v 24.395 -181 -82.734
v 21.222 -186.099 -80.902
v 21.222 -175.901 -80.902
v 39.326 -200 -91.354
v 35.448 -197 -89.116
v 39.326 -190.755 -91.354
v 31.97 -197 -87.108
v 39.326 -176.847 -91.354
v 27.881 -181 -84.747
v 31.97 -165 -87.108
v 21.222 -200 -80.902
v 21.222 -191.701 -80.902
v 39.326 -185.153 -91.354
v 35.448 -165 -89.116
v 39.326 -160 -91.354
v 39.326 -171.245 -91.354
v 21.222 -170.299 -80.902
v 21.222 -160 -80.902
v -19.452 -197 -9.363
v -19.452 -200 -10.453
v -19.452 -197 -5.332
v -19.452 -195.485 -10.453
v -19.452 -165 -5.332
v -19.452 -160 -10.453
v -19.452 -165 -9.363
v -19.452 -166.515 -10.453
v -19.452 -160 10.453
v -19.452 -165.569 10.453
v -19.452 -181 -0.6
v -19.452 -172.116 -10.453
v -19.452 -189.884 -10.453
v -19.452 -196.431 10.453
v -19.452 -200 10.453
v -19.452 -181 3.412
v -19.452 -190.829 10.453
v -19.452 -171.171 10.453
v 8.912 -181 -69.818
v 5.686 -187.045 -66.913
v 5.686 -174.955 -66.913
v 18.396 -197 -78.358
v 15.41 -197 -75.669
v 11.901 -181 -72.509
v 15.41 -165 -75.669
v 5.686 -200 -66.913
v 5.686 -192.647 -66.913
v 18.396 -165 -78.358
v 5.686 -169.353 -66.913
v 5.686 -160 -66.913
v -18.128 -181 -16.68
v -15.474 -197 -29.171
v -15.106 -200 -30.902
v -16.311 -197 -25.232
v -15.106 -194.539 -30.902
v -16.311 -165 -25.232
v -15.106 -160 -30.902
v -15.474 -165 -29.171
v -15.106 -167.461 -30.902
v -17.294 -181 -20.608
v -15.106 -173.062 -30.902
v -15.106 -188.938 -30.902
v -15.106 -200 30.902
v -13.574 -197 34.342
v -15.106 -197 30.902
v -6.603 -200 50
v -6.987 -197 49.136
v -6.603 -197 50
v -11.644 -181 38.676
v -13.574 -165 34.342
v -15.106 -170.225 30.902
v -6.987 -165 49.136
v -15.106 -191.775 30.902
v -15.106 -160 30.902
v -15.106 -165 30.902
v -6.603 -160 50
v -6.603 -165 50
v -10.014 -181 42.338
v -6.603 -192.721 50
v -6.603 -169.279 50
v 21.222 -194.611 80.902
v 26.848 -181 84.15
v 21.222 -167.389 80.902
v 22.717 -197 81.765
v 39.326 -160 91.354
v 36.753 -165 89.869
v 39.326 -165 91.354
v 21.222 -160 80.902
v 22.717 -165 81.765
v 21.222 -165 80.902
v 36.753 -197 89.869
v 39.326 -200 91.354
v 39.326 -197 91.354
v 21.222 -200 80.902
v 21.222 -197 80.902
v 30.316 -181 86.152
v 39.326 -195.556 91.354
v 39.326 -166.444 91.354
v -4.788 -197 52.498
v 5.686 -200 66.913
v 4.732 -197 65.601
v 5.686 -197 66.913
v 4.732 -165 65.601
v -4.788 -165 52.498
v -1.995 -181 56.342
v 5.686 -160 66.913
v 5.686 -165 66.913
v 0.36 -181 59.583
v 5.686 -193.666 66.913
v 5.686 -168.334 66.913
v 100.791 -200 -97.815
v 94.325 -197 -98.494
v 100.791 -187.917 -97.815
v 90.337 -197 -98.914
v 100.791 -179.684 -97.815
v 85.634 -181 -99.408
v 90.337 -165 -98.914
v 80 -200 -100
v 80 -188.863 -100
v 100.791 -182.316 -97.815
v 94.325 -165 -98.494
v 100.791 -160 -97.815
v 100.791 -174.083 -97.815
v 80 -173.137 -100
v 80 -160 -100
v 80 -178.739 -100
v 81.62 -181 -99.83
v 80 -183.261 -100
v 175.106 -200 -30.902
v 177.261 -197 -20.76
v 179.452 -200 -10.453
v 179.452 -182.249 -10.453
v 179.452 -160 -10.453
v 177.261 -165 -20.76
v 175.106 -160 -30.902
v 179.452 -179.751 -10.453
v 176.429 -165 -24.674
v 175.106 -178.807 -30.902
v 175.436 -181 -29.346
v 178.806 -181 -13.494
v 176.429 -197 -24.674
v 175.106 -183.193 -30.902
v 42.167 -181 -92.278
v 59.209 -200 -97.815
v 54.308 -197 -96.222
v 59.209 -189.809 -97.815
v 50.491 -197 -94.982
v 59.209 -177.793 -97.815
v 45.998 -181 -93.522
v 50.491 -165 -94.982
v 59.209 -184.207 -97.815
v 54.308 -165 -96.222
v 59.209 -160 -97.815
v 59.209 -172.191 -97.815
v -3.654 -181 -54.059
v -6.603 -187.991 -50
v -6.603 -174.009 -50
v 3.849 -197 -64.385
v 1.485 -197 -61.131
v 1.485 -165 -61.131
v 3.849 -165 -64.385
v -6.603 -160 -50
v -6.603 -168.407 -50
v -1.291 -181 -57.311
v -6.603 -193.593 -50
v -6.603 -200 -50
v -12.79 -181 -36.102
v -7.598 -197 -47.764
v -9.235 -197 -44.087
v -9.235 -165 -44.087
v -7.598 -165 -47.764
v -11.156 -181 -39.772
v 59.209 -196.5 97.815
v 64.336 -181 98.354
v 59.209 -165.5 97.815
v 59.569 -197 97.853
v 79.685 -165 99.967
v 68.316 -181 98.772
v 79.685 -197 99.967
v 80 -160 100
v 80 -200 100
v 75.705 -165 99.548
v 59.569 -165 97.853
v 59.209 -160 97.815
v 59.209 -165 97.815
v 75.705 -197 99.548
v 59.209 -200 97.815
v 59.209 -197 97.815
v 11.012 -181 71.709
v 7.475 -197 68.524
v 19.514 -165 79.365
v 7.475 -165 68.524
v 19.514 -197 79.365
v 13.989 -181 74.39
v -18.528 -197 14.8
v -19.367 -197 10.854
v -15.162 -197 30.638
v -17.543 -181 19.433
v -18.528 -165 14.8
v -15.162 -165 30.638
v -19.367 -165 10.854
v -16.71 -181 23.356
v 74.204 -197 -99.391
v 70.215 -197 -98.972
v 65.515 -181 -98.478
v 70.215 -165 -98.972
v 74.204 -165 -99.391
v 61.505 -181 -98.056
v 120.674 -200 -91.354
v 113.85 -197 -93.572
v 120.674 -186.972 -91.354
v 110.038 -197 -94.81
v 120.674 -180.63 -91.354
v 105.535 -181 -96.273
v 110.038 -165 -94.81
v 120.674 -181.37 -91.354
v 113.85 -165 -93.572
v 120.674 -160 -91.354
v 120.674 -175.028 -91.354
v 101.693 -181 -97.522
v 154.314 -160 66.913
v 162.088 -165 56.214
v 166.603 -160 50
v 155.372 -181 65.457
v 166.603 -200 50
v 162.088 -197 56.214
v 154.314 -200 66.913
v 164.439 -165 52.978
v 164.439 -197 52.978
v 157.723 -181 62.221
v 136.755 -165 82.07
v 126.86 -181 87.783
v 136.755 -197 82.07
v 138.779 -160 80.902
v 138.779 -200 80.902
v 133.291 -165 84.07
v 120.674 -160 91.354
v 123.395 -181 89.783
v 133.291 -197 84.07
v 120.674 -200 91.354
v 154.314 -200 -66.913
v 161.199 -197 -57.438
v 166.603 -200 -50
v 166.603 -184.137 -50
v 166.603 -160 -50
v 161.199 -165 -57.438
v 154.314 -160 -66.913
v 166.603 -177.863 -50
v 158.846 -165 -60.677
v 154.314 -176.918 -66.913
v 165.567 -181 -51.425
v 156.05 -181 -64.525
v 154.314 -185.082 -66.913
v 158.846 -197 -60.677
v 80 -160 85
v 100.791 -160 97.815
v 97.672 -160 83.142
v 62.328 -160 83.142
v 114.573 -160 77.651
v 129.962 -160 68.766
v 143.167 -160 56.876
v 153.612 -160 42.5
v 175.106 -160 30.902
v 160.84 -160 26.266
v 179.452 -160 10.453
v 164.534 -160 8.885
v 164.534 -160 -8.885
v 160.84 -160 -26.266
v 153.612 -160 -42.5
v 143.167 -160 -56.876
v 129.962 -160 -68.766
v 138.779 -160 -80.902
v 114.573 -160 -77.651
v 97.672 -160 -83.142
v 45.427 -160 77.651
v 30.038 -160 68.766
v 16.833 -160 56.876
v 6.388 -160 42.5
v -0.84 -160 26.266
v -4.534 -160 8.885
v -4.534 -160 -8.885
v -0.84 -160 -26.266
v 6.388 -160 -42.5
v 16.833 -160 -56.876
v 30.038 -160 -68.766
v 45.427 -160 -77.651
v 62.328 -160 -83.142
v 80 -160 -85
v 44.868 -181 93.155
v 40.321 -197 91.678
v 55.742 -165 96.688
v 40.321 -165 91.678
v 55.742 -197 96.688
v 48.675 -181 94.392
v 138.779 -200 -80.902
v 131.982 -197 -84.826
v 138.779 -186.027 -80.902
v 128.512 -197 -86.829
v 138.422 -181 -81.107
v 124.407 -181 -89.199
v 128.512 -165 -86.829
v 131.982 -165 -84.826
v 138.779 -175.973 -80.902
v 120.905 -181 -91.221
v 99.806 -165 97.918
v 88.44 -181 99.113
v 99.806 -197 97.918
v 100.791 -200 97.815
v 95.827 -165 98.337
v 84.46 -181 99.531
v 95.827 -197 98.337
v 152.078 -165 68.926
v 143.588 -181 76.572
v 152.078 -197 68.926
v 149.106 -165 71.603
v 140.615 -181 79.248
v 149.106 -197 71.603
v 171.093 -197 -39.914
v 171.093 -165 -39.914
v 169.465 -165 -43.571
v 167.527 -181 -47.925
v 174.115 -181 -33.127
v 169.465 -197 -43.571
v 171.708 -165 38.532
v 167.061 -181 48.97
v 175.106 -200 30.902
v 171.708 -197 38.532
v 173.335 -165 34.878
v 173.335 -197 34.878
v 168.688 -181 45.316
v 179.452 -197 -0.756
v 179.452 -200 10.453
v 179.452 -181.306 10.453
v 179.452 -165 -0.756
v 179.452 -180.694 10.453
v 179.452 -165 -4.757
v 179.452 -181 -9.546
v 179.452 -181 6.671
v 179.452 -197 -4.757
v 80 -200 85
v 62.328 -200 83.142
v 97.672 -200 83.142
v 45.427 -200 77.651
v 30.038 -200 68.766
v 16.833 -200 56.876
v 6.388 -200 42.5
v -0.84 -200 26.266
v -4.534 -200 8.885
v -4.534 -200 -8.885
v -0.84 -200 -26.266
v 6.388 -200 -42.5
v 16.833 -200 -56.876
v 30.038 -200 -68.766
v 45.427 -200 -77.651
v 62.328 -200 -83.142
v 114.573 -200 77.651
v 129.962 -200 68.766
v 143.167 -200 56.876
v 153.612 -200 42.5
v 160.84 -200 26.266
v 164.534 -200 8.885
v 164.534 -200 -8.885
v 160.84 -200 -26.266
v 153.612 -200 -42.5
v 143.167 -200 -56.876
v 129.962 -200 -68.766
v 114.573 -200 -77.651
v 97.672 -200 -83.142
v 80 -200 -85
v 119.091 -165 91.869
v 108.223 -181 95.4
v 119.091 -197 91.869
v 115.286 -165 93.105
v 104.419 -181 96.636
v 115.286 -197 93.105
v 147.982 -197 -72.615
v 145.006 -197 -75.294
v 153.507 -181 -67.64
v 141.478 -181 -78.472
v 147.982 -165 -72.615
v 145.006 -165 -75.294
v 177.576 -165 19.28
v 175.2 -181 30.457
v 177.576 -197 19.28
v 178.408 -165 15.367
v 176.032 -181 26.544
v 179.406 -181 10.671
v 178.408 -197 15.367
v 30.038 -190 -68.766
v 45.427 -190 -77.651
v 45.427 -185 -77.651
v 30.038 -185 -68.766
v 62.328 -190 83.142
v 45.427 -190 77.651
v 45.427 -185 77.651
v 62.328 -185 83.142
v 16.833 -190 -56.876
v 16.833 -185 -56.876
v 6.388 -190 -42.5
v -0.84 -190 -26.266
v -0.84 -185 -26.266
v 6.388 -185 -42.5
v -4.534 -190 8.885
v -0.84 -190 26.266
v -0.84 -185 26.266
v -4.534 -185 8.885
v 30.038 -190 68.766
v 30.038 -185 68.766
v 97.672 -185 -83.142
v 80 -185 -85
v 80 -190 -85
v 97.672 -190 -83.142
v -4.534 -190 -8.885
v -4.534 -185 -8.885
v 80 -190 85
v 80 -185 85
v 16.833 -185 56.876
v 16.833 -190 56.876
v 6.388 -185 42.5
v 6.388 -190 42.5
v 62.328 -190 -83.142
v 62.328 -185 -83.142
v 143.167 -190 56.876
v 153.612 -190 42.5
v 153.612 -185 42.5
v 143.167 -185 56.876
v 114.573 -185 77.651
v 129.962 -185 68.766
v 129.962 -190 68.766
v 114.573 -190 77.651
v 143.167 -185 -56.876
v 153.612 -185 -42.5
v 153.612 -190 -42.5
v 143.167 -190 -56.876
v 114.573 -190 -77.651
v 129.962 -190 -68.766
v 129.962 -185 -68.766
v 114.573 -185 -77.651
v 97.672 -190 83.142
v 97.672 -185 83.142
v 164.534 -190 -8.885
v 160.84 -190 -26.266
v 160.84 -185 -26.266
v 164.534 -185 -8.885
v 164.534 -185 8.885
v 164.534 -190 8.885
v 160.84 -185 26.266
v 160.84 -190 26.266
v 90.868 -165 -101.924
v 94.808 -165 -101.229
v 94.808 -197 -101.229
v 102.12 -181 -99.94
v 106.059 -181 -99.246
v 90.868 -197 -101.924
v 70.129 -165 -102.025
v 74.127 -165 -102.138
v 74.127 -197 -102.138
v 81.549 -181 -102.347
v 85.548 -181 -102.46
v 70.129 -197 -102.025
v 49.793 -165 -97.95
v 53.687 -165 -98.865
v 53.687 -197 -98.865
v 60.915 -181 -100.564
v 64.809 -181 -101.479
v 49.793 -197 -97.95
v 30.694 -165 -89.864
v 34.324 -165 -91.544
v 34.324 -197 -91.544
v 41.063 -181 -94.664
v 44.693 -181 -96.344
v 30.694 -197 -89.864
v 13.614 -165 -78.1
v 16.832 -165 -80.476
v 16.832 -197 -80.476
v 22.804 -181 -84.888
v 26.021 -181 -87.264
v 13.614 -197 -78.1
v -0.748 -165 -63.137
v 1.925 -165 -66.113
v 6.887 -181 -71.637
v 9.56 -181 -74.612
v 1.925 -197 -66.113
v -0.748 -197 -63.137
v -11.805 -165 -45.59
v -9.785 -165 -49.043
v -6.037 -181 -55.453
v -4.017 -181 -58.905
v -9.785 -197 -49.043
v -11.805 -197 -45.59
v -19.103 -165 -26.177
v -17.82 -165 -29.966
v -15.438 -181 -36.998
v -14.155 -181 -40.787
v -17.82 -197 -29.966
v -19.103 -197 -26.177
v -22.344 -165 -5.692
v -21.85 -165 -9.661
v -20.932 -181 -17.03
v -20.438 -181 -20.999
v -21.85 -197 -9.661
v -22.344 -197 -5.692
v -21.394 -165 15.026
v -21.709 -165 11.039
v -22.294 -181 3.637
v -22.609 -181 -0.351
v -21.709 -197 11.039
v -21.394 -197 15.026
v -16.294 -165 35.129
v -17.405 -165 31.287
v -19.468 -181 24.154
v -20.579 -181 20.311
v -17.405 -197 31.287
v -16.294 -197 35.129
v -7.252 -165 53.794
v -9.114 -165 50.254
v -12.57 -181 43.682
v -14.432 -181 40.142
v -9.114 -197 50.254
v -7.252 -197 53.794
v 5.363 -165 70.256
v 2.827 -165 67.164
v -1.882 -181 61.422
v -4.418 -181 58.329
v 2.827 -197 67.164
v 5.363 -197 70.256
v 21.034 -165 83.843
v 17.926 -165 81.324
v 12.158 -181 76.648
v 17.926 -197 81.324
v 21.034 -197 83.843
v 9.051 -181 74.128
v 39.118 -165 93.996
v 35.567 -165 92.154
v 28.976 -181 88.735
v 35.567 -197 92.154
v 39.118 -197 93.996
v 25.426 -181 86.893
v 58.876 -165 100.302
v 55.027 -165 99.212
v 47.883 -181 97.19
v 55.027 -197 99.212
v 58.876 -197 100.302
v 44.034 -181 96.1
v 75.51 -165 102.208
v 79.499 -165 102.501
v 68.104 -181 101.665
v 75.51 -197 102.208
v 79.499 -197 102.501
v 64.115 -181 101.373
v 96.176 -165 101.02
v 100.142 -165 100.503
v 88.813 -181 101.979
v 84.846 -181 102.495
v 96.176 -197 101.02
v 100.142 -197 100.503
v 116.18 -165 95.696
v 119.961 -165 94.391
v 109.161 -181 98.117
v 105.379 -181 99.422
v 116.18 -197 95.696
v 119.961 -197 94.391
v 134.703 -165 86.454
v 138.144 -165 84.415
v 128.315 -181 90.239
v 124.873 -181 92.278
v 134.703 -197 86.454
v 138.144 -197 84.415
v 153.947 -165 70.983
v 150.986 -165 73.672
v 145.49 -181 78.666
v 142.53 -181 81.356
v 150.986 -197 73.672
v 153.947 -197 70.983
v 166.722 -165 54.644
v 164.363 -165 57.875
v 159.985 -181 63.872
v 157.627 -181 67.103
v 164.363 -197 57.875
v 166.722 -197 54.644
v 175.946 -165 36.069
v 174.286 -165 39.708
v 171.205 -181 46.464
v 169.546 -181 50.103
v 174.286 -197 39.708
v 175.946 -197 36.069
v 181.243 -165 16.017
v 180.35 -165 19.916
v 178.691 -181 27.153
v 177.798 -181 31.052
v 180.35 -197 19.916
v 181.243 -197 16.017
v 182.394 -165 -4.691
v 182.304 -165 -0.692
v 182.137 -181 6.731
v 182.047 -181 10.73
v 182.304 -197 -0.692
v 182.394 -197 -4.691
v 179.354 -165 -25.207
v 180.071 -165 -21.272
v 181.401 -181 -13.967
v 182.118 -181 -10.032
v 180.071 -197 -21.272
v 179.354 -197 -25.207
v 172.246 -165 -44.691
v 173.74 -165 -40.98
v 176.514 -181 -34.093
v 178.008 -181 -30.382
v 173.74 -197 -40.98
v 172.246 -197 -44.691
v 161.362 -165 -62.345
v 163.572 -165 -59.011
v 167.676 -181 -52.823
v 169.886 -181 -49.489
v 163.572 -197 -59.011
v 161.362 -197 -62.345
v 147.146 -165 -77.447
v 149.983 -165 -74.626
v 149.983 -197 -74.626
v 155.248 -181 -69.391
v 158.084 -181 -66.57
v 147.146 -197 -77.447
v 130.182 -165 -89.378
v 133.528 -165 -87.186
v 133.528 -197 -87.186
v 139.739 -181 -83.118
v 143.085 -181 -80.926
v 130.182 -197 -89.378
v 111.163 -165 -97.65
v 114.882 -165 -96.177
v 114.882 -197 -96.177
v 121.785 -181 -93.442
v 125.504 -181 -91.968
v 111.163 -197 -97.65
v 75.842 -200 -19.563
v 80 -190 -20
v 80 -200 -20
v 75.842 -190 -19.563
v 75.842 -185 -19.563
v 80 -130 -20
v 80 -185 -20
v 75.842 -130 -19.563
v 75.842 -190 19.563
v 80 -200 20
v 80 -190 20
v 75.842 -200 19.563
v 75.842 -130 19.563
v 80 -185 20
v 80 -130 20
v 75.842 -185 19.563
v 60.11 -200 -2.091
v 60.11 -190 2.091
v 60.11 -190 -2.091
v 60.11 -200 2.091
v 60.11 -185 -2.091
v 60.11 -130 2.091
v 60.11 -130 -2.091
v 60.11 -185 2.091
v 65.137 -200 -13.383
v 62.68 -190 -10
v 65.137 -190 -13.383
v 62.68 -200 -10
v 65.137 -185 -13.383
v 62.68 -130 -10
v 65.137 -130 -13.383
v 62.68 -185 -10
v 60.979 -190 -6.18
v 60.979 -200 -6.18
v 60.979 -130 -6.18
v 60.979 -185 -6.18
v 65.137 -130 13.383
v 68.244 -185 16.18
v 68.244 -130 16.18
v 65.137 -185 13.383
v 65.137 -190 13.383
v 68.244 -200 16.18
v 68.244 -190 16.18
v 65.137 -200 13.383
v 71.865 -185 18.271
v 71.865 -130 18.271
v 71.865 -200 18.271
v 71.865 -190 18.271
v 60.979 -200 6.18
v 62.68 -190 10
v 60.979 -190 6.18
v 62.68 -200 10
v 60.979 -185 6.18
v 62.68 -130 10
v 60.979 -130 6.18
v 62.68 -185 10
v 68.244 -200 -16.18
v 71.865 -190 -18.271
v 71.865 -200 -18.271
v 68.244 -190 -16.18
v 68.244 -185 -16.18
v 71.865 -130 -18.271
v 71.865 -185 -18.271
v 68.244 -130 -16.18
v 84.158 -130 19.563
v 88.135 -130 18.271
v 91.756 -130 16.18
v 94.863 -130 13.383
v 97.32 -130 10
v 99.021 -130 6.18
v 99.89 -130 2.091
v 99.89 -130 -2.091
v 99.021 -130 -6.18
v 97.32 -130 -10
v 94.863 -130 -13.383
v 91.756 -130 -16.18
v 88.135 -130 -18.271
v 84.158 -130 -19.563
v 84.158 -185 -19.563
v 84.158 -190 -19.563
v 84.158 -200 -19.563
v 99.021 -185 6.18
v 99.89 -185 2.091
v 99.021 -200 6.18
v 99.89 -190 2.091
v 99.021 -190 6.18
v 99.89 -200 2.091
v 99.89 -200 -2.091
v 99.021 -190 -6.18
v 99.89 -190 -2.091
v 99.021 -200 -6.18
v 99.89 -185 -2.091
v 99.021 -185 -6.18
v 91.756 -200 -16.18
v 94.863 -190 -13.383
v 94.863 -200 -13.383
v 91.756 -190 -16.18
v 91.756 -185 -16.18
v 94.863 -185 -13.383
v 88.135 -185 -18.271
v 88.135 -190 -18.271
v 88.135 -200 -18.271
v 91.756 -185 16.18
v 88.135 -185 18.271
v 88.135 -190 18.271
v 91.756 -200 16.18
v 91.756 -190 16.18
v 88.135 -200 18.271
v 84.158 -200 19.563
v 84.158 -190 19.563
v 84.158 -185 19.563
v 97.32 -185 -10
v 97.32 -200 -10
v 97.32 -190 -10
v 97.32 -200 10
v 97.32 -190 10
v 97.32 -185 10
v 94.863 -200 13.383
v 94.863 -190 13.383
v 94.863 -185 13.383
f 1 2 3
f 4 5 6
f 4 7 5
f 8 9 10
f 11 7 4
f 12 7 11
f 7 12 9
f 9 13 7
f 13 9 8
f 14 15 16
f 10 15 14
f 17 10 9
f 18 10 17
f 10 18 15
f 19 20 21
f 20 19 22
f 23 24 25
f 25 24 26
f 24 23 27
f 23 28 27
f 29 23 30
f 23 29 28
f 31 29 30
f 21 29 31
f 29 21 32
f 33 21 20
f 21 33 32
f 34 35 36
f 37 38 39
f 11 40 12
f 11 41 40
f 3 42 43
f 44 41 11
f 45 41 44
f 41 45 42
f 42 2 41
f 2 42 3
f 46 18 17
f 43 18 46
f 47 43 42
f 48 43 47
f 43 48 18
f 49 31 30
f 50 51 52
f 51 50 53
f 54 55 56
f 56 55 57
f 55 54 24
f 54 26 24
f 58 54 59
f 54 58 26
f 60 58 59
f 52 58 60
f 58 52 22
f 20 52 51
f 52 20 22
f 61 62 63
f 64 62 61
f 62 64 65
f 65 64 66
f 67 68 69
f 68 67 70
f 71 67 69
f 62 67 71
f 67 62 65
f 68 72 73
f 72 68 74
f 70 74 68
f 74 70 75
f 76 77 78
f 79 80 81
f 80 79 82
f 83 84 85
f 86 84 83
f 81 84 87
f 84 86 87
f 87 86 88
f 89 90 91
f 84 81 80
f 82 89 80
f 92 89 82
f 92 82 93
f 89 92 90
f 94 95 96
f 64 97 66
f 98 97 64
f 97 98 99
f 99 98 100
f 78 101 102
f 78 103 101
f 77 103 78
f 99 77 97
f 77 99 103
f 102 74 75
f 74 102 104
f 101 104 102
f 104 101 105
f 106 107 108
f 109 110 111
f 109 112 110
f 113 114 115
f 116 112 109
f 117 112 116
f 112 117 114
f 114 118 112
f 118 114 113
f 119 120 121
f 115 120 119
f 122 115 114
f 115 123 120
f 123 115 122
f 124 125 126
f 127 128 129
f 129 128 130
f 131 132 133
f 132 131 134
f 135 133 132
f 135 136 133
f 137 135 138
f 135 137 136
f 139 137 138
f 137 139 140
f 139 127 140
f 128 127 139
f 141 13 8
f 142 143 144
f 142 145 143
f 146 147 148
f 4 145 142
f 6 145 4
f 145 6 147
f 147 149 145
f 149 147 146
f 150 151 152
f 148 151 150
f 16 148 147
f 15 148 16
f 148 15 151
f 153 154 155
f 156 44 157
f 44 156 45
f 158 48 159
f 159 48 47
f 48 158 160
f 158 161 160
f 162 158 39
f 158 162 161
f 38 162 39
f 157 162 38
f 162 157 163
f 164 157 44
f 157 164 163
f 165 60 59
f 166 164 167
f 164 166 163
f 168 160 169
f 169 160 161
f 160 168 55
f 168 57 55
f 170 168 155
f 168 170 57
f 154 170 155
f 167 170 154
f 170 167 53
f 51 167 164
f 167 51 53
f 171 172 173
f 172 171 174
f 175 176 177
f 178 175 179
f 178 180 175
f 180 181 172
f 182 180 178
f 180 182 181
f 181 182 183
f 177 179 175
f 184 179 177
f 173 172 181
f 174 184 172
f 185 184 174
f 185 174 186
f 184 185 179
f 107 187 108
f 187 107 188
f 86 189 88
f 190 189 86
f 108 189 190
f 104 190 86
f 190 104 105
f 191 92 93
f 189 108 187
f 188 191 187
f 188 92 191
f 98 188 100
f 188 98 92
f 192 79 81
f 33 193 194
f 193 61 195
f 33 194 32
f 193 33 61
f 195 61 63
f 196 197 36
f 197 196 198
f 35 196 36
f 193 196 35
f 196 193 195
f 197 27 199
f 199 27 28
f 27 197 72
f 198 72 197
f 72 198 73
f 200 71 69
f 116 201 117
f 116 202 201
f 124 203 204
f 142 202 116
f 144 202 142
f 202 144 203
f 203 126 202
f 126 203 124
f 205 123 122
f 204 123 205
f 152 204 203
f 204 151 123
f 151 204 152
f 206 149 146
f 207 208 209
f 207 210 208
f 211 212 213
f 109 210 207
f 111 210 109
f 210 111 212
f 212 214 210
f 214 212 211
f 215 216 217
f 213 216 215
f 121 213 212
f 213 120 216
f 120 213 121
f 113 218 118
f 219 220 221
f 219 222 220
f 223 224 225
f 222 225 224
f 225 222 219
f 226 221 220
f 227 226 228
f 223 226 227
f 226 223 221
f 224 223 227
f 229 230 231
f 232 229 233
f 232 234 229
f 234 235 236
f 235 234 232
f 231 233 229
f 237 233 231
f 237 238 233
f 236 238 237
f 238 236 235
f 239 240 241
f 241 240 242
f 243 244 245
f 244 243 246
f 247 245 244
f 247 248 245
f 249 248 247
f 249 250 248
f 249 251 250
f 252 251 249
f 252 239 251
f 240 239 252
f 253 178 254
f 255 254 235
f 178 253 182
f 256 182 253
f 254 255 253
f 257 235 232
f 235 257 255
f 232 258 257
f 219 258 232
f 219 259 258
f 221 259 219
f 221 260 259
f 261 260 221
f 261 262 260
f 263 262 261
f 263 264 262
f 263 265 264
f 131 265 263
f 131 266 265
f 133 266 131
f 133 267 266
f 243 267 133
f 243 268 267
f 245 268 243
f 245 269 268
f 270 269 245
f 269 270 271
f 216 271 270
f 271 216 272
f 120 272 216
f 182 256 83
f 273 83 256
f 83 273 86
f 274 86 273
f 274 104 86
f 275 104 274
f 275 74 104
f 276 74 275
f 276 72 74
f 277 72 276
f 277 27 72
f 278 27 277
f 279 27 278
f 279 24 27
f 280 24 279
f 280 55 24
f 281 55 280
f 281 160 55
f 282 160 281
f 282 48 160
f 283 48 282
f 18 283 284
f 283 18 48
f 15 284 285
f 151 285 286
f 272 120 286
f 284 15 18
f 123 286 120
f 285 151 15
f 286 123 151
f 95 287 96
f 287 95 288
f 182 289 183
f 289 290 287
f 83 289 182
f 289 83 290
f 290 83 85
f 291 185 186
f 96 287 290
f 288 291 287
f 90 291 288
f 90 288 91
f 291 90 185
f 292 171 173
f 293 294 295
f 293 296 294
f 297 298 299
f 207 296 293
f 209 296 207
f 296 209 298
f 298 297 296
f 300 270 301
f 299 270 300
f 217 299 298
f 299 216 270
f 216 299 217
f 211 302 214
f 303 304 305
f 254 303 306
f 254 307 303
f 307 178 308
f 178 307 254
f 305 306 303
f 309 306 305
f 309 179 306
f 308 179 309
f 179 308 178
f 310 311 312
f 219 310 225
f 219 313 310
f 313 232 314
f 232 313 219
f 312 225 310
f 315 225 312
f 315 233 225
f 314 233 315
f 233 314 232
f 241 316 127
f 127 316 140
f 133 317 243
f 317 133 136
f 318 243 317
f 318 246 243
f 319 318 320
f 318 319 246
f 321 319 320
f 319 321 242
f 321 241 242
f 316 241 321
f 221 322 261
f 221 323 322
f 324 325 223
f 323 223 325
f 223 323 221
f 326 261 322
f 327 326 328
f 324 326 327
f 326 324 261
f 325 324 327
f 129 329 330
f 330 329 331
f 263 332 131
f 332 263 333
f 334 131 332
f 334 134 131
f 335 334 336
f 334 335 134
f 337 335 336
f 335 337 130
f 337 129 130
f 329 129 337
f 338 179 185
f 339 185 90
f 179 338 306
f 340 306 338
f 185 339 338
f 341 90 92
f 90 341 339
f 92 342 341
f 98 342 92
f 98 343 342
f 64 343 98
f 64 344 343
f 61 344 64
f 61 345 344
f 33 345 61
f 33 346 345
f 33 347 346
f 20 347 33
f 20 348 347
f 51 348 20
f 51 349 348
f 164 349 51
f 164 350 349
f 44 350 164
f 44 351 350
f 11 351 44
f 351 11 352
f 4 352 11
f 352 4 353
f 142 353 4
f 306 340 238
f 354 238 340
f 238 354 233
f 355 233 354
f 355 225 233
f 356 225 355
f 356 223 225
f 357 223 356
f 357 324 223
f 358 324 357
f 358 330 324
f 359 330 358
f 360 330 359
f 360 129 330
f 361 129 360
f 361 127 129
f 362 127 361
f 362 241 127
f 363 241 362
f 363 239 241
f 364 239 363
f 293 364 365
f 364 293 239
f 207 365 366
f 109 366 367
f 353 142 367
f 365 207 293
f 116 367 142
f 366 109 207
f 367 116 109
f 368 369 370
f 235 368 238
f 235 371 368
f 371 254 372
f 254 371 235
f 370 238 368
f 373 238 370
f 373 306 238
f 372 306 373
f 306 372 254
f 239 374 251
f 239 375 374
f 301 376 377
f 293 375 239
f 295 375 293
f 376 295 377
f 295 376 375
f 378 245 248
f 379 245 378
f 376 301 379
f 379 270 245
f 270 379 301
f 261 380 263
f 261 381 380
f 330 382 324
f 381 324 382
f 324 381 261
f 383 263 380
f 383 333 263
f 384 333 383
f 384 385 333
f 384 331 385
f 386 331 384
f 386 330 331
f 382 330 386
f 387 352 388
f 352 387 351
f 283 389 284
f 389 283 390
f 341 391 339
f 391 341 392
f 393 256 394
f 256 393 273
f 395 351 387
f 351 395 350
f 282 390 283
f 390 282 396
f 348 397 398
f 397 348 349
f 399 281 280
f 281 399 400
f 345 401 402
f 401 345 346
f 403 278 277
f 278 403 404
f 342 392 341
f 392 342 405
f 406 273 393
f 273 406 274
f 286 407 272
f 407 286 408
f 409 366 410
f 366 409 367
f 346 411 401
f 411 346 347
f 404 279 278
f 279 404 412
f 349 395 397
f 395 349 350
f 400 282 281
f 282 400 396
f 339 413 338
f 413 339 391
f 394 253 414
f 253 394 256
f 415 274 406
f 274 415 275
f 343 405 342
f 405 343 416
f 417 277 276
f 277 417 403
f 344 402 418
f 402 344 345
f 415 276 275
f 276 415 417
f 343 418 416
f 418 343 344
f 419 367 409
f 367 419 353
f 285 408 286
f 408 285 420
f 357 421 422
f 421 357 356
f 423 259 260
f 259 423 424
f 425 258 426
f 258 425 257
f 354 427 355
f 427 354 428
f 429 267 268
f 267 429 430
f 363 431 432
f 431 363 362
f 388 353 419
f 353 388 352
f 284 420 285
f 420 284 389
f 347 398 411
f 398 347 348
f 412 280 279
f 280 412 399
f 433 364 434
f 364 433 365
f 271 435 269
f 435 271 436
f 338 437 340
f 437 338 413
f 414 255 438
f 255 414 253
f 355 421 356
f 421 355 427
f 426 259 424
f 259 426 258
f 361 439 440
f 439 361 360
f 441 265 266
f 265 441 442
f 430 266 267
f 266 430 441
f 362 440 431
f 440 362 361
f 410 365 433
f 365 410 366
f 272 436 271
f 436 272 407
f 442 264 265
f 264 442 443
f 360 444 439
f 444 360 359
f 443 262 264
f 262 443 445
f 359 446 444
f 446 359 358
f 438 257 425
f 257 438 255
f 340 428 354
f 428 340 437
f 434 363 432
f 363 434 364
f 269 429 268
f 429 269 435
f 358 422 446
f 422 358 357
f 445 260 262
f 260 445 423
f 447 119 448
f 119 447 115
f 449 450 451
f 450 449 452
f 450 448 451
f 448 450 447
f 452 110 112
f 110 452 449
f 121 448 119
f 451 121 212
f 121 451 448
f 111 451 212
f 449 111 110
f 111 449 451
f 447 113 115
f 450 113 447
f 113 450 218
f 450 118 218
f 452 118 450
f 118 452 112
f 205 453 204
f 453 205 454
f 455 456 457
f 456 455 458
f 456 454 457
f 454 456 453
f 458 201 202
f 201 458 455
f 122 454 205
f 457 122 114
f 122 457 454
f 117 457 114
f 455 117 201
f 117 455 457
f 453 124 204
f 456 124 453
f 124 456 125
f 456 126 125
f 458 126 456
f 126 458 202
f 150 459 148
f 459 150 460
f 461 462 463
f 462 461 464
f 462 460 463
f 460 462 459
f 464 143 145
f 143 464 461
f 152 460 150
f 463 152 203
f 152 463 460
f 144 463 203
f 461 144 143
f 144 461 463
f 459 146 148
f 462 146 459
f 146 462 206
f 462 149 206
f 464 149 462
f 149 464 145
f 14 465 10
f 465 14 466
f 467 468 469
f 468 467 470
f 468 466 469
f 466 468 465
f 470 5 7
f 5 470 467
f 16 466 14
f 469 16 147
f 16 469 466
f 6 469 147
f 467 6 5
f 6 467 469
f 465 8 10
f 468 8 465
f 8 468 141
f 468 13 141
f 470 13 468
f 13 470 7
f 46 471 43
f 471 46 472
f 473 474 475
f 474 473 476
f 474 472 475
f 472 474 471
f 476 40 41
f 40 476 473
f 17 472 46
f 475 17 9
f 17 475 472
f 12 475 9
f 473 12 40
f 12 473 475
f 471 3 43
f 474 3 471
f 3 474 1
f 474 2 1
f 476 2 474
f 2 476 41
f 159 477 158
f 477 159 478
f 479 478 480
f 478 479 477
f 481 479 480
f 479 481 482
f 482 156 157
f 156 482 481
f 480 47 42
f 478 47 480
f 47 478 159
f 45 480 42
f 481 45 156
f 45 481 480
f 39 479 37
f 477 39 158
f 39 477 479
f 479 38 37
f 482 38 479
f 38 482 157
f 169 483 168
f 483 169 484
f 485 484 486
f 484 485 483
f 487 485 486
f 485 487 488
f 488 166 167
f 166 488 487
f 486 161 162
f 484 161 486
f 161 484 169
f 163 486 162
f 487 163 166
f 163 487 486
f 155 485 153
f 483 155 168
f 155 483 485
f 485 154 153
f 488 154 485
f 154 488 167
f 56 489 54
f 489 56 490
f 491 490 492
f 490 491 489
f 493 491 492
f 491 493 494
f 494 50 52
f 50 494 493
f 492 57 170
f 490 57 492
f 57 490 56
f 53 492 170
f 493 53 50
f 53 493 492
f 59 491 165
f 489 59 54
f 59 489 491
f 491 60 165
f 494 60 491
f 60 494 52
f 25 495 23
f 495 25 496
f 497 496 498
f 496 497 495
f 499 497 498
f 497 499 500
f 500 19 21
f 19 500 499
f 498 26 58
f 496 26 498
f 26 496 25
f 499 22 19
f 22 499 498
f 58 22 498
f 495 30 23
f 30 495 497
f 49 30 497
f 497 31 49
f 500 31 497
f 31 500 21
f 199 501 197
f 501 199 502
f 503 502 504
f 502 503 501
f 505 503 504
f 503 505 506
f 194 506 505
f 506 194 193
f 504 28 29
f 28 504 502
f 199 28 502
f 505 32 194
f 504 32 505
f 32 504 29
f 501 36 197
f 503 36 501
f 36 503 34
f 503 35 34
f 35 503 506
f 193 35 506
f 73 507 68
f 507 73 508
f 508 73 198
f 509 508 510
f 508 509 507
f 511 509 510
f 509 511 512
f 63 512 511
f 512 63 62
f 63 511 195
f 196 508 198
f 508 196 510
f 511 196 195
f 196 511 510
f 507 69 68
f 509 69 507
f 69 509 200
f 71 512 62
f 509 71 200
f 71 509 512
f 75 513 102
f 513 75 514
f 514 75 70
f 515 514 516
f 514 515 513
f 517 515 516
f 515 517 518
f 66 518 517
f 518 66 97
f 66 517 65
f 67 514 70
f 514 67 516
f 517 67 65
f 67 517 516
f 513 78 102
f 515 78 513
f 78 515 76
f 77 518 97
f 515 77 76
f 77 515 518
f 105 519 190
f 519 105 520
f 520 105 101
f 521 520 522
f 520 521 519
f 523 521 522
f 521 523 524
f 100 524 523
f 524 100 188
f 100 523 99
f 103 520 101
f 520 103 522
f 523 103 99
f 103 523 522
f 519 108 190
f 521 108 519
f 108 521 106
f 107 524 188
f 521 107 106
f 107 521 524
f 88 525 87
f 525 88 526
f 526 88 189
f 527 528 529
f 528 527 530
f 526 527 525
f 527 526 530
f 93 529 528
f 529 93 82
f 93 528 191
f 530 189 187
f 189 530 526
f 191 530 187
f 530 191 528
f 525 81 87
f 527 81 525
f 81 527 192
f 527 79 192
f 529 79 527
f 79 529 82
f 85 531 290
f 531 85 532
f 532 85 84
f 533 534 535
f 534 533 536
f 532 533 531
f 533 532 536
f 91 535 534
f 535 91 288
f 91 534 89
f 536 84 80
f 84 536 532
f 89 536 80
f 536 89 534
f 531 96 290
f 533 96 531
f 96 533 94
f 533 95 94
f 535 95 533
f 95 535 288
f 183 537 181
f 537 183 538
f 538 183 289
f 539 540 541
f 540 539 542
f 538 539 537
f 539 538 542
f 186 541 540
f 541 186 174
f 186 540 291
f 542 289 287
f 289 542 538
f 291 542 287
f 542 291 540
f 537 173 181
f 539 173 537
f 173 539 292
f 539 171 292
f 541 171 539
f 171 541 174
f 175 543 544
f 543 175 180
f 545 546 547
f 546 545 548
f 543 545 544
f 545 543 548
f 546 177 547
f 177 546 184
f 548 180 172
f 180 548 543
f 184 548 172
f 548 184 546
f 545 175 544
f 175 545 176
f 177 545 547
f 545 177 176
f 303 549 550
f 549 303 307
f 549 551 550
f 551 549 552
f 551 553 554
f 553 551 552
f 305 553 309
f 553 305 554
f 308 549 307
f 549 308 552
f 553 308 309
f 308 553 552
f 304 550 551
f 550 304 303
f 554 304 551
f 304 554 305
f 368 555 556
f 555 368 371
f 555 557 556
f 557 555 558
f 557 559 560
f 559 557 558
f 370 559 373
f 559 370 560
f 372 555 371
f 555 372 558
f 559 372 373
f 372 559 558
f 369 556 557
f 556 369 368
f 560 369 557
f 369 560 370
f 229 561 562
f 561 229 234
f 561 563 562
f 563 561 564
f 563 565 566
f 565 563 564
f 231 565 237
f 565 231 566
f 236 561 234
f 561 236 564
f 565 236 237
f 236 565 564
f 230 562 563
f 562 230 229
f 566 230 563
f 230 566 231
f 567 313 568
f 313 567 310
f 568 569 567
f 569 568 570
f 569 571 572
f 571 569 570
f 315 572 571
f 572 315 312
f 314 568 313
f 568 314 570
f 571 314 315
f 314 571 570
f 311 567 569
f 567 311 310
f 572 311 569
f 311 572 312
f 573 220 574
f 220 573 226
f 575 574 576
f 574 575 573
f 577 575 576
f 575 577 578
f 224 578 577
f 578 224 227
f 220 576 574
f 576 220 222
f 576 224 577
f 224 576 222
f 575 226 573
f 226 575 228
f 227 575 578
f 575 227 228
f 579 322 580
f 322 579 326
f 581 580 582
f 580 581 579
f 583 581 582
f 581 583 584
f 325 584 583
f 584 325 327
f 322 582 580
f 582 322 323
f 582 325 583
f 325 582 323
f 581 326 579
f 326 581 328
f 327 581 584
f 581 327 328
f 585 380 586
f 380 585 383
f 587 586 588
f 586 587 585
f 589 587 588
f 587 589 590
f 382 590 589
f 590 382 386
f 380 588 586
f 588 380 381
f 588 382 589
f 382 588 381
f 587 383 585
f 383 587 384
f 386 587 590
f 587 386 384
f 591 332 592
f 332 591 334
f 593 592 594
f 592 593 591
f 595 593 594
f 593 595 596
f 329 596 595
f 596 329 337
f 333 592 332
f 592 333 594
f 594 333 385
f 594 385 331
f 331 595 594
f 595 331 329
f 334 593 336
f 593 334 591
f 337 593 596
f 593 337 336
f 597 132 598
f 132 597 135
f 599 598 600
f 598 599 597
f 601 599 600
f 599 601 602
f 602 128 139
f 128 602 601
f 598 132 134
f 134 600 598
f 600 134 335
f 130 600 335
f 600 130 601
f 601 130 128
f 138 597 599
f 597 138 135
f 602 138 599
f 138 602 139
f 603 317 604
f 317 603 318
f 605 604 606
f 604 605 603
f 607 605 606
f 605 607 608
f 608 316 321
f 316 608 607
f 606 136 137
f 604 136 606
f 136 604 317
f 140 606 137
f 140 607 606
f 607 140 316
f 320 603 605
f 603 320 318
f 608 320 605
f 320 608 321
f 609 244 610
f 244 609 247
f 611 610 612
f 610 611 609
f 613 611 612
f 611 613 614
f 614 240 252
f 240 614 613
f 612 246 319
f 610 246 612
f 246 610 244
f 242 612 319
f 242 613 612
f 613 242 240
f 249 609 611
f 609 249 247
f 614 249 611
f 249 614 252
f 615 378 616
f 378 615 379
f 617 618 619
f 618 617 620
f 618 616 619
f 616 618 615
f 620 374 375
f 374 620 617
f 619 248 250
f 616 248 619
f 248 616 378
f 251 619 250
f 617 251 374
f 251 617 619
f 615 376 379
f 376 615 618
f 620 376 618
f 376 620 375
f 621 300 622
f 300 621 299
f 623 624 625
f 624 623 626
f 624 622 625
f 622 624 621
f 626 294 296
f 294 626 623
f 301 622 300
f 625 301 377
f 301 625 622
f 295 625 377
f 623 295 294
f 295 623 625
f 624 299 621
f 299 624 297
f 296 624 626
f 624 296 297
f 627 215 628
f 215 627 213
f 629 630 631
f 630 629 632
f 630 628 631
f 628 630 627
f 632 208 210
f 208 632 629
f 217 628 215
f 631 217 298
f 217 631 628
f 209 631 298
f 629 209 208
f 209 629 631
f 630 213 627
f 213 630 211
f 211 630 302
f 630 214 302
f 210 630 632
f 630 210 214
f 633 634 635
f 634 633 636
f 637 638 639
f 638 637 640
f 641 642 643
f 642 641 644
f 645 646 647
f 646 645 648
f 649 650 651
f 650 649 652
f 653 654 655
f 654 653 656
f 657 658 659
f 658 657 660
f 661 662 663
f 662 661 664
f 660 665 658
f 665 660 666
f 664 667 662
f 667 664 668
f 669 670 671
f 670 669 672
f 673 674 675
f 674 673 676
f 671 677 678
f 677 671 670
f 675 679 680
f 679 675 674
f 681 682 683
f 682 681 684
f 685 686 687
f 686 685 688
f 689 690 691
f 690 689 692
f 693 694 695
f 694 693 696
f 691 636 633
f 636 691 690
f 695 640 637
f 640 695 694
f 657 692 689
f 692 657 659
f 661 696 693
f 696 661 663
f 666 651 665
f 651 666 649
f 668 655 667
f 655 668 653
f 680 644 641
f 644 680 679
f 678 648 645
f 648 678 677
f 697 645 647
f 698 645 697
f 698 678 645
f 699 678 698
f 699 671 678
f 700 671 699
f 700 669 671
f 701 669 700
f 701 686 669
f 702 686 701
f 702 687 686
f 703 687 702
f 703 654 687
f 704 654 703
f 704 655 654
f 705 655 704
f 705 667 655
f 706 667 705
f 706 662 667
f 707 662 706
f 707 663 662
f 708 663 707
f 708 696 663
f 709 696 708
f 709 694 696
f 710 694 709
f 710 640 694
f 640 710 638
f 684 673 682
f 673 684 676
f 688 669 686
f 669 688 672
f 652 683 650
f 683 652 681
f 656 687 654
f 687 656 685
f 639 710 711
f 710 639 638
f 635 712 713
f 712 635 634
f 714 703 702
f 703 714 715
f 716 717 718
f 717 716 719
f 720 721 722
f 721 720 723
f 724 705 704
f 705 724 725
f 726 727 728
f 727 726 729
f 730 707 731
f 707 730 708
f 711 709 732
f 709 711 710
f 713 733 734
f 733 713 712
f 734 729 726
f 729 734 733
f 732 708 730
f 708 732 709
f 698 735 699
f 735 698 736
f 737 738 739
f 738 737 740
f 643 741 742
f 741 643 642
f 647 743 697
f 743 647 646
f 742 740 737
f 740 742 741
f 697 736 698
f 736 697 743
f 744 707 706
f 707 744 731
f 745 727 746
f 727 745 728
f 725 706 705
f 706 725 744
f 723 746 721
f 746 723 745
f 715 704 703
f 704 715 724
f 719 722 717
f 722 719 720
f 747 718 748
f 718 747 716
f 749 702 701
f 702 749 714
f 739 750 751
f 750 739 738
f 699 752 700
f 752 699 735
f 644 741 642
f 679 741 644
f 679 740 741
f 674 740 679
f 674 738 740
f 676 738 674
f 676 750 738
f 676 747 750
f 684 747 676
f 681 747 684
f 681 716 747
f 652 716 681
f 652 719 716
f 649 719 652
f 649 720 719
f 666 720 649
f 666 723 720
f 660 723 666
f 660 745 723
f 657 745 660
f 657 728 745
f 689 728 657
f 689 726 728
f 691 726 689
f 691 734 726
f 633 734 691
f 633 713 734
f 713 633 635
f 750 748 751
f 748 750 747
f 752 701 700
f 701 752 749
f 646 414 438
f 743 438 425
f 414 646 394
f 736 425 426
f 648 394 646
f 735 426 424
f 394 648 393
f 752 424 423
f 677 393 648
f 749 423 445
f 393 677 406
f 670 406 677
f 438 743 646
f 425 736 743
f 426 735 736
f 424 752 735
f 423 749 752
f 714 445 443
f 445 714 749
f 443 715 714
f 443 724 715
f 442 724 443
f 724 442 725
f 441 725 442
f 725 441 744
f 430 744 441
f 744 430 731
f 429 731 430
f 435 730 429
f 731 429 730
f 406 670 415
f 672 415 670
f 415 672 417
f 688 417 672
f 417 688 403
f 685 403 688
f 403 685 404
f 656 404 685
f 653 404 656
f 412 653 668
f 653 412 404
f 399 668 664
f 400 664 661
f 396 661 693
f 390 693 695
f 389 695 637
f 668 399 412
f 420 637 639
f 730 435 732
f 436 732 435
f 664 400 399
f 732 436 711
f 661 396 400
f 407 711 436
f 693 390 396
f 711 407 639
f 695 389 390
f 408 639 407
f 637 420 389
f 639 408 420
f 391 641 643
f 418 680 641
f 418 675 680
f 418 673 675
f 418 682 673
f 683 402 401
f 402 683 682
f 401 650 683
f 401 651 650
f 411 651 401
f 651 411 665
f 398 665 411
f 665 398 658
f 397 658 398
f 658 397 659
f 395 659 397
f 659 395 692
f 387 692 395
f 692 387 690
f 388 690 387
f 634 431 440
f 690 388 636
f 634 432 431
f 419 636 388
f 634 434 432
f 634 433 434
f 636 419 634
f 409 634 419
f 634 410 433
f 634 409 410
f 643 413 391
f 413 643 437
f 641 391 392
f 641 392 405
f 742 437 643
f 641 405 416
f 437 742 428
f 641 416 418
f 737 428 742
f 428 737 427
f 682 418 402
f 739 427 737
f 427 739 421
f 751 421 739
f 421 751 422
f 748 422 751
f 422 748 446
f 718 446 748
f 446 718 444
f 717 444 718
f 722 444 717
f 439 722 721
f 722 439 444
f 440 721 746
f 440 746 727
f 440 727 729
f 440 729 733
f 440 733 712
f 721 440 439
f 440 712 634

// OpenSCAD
//$fn=70;
SXTyre(80,-200,0);
module SXTyre(x,y,z){
	translate([x,y,z]){
		union(){
			rotate([270,90,0]){
				difference() {
					cylinder(h=40, r=100);
					cylinder(h=40, r=85);
				}
				color("blue") cylinder(h=70, r=20);
				translate(v=[0,0,10]) {
					cylinder(h=5, r=100);
				}
				for(i=[0:30]) {
					rotate([0,0,i*360/31]){
						translate([97,-10,35]){
							rotate([0,90,-10]){
								color("red") mirror([0,1,0]){ 
									freccia(4,4,10);
								}
							}
						}
					}
				}
			}
		}
	}
}



module freccia(w,h,z){
    scale([8,4,0.5]){
		difference() {
			difference() {
				cube([w,h,z]);
				translate([0,1,0]){
					rotate([0,0,55]){
						cube([w,h,z]);
					}
				}
				translate([4,1,0]){
					rotate([0,0,35]){
					cube([w,h,z]);
					}
				}
			}
			translate([0,-1,0]){
				difference() {
					cube([w,h,z]);
					translate([0,1,0]){
						rotate([0,0,55]){
							cube([w,h,z]);
						}
					}
					translate([4,1,0]){
						rotate([0,0,35]){
							cube([w,h,z]);
						}
					}
				}
			}
		}
	}
}
